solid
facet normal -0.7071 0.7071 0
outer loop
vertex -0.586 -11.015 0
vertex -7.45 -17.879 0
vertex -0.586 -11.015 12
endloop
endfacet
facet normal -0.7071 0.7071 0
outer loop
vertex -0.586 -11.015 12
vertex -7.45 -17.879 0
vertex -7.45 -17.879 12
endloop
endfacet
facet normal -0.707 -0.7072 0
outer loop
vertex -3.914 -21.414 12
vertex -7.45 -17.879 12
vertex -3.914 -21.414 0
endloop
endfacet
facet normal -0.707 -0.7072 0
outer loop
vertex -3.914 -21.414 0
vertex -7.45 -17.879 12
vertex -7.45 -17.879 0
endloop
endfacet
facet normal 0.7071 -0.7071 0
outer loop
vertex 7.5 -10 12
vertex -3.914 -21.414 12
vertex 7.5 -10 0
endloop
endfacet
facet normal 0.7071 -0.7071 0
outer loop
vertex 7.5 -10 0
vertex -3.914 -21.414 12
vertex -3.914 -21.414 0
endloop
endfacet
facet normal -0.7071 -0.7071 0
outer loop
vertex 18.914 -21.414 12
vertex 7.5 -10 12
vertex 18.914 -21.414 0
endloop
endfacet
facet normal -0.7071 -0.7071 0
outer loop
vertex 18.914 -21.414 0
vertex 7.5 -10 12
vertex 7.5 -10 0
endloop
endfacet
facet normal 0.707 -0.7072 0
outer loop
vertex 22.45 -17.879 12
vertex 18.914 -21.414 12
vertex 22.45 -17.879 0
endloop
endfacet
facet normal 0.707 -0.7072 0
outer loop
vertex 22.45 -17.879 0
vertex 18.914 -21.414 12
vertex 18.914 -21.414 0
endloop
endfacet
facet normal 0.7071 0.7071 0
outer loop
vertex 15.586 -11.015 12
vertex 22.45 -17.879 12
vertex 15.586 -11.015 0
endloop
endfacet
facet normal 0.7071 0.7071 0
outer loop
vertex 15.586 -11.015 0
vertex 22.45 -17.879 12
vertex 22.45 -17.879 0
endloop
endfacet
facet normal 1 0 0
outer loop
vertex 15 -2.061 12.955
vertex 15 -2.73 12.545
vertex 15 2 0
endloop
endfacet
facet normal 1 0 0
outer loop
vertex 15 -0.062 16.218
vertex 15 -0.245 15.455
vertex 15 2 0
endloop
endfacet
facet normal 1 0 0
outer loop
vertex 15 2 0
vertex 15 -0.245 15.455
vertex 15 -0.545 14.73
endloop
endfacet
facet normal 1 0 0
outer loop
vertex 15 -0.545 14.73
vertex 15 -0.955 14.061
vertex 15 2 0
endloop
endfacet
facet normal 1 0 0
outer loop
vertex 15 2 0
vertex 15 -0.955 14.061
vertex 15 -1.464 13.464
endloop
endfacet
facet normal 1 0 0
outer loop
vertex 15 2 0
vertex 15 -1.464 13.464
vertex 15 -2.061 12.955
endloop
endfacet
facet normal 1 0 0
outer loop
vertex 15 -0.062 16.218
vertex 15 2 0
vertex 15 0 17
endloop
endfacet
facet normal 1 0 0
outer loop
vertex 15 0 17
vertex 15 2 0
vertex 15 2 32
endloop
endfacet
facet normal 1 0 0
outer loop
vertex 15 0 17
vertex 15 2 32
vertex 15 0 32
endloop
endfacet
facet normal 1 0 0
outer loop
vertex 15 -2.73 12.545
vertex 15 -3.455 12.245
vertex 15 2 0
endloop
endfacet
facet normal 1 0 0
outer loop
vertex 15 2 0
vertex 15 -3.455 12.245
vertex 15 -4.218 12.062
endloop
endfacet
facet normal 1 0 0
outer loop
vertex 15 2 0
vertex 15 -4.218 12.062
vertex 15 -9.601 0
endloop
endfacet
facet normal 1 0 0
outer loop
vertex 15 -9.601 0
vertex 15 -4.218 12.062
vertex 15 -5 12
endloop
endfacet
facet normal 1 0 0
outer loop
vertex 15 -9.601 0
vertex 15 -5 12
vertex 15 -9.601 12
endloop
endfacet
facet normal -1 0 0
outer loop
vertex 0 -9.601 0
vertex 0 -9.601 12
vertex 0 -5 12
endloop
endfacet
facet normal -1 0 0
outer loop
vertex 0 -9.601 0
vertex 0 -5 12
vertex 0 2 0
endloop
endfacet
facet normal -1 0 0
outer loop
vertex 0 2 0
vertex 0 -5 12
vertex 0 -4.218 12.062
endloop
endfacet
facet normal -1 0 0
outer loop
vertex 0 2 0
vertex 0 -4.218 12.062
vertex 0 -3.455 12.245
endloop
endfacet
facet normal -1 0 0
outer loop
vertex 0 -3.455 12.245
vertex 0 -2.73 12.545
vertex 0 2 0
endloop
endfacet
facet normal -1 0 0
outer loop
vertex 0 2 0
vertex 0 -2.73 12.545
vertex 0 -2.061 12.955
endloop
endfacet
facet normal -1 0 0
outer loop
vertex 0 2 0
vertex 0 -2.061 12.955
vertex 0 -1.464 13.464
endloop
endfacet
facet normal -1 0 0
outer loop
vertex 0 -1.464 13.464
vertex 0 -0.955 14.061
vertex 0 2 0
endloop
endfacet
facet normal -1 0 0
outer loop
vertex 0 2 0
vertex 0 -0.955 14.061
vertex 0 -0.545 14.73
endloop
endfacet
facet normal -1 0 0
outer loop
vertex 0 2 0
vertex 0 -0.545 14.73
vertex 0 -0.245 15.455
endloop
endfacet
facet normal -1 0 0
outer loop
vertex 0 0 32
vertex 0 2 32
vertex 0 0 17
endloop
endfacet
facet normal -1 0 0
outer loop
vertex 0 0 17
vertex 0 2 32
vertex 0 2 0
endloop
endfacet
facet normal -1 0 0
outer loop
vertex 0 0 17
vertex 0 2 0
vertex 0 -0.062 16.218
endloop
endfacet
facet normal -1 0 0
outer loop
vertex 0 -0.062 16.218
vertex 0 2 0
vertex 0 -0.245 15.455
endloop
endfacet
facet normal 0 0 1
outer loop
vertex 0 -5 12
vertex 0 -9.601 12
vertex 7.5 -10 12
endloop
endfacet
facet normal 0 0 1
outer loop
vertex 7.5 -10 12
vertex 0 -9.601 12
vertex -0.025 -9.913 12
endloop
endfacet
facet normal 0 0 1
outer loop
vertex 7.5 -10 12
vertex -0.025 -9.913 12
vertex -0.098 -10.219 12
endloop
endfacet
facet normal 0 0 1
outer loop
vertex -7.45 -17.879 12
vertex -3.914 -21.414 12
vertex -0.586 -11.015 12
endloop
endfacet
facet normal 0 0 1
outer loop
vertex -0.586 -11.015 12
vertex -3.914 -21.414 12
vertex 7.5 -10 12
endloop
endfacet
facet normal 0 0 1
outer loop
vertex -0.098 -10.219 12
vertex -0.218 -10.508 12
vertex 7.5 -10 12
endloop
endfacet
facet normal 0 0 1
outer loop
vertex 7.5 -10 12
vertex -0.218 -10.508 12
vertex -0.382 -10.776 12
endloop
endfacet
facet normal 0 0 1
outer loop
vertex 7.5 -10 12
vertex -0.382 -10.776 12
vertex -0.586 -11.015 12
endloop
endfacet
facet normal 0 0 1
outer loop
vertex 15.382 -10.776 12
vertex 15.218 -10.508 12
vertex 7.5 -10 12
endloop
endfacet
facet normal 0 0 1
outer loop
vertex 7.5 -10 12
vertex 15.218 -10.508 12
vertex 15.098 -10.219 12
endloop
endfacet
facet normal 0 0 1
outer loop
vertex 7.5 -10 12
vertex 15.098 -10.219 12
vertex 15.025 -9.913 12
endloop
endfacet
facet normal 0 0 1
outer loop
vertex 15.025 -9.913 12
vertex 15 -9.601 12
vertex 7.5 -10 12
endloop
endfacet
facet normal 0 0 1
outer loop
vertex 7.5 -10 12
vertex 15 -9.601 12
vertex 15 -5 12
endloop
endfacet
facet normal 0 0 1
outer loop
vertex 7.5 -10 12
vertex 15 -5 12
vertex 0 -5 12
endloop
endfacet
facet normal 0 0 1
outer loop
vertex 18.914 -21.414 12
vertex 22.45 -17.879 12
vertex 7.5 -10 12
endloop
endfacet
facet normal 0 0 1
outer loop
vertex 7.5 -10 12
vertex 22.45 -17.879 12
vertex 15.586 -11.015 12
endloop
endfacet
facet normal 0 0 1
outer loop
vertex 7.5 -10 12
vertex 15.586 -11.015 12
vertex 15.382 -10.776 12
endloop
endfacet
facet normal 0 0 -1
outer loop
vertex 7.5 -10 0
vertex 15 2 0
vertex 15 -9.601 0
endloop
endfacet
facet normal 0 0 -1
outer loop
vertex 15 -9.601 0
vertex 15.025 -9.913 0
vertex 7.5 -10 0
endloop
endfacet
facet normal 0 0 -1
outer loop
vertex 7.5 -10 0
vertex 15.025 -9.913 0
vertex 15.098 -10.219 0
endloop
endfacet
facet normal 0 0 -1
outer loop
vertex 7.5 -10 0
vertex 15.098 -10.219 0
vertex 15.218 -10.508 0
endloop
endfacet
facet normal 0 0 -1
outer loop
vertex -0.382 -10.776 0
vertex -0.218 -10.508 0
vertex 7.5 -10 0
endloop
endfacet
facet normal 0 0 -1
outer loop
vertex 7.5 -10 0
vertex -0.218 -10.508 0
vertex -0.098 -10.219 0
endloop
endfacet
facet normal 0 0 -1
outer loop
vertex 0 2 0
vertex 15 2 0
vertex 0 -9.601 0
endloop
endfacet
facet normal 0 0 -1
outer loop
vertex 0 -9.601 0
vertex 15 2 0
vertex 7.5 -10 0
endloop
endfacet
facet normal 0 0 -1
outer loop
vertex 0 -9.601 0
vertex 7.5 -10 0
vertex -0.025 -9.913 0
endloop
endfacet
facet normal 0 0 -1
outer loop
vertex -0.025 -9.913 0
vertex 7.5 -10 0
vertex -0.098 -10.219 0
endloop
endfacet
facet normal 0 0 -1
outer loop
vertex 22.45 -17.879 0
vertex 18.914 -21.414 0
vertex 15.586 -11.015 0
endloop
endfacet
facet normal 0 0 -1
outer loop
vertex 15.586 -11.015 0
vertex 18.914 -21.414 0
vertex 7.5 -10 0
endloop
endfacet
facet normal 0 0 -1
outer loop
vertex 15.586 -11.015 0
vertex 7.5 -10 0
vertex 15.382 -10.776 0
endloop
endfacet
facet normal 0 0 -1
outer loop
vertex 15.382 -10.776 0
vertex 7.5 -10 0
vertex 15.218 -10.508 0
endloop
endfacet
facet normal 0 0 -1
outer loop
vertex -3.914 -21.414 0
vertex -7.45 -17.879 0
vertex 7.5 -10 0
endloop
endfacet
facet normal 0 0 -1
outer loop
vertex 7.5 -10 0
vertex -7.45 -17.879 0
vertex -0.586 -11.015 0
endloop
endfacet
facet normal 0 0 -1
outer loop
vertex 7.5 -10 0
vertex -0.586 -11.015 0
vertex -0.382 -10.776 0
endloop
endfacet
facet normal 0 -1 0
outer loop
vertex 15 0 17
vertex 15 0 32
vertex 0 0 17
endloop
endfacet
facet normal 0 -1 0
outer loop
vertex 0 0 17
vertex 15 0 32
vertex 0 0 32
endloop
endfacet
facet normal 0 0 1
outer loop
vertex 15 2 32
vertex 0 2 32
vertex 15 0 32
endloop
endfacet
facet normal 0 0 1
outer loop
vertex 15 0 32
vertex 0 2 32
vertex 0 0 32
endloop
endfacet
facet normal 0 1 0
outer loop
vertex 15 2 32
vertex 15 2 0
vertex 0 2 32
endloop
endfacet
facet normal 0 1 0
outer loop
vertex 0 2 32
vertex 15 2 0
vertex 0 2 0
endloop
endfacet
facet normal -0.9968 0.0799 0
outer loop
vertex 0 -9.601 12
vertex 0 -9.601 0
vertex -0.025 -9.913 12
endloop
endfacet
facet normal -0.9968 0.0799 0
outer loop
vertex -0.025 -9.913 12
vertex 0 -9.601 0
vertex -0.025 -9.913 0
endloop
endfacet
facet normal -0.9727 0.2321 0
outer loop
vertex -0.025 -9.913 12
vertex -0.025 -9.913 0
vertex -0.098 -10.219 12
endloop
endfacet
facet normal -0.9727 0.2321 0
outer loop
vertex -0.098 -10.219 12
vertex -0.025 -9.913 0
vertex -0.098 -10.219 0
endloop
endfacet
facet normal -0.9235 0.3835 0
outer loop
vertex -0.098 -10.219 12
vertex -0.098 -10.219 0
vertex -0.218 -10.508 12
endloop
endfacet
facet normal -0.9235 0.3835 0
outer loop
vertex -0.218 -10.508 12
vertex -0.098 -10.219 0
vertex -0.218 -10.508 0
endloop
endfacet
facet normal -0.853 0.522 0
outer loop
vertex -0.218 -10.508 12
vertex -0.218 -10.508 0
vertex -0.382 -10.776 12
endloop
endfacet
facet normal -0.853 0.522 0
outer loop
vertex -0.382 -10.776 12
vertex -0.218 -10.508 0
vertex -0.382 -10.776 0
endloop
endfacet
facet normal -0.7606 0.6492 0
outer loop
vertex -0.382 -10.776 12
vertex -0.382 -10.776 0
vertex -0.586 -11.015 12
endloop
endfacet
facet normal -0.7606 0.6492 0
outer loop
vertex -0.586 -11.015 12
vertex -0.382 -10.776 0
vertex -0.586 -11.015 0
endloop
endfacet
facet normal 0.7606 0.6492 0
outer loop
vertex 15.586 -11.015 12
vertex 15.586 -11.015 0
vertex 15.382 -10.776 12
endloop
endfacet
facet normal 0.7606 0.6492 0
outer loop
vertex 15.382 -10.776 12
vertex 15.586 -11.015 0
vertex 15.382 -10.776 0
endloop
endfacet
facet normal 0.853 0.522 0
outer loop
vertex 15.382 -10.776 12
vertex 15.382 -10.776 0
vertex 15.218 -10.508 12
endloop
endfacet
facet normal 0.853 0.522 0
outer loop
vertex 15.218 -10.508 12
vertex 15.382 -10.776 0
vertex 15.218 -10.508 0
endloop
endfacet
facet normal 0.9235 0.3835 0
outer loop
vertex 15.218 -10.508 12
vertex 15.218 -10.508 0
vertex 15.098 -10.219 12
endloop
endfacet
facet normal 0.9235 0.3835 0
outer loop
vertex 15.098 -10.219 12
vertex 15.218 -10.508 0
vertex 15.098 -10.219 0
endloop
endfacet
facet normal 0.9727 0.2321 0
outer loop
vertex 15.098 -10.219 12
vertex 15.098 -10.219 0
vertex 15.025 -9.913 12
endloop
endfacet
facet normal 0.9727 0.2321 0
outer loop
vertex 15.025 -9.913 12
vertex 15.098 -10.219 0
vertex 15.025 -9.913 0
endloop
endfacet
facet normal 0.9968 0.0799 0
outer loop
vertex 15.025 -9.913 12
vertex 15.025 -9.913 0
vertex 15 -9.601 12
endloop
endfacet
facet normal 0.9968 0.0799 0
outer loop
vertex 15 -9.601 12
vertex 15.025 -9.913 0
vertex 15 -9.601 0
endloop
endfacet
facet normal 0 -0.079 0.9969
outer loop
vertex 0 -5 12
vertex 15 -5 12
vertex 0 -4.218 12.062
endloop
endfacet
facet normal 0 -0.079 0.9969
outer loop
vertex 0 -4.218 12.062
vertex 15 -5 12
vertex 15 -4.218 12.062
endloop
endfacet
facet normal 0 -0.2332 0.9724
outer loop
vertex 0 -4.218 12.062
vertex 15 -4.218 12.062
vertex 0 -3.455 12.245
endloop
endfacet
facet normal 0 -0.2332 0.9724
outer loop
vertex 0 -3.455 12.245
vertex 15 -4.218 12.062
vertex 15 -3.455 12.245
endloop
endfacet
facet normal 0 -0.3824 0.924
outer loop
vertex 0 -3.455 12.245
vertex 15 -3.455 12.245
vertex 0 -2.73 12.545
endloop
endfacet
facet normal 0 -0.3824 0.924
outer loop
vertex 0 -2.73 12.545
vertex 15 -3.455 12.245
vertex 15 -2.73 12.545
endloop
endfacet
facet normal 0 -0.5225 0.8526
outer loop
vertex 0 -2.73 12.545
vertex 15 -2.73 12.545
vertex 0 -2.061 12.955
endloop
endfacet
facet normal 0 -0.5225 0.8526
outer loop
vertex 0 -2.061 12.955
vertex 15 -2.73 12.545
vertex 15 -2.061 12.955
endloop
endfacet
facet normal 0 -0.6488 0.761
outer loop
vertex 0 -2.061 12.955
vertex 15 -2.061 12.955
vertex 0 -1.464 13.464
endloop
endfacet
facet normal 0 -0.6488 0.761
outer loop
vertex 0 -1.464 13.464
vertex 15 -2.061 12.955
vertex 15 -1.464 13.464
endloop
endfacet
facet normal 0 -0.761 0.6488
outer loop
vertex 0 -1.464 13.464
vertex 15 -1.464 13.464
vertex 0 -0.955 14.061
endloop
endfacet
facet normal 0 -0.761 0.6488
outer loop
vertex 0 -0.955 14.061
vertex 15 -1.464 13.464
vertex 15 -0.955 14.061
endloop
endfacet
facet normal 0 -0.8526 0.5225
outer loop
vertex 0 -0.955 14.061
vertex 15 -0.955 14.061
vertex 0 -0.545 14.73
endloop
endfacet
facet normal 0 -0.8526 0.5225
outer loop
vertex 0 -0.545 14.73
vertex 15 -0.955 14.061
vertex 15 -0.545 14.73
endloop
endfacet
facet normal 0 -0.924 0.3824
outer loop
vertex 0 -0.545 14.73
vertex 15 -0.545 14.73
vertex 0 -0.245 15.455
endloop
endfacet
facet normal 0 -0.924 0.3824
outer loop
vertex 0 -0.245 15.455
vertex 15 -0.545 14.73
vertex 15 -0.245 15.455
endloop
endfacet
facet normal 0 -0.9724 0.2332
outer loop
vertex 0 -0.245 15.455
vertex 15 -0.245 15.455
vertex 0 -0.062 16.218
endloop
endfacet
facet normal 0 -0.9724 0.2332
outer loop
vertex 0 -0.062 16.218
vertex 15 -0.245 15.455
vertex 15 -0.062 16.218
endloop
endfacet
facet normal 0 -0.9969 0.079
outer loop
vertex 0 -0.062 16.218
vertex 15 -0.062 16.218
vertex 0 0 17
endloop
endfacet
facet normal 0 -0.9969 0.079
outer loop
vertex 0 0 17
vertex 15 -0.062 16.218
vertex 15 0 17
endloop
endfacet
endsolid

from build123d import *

# Parameters (mm, degrees)
BOSS_EXTRU_1_DEPTH = 12
ESQUISSE3_W        = 15
ESQUISSE3_H        = 32
BOSS_EXTRU_2_DEPTH = 2
CONG_2_R           = 2
CONG_3_R           = 5


with BuildPart() as part:
    # Esquisse2 → Boss.-Extru.1 (new body)
    with BuildSketch(Plane.XY):
        Polygon((-2.5, -20), (0, -17.5), (0, -10.428932188), (-6.035533906, -16.464466094), align=None)
        Polygon((7.5, -10), (7.5, 0), (0, 0), (0, -10.428932188), (0, -17.5), align=None)
        Polygon((15, 0), (7.5, 0), (7.5, -10), (15, -17.5), (15, -10.428932188), align=None)
        Polygon((15, -10.428932188), (15, -17.5), (17.5, -20), (21.035533906, -16.464466094), align=None)
        Polygon((-3.914213562, -21.414213562), (-7.449747468, -17.878679656), (-6.035533906, -16.464466094), (-2.5, -20), align=None)
        Polygon((17.5, -20), (18.914213562, -21.414213562), (22.449747468, -17.878679656), (21.035533906, -16.464466094), align=None)
    extrude(amount=BOSS_EXTRU_1_DEPTH)

    # Esquisse3 → Boss.-Extru.2 (add)
    with BuildSketch(Plane(origin=(0, 0, 0), x_dir=(1, 0, 0), z_dir=(0, 1, 0))):
        with Locations((7.5, -16)):
            Rectangle(ESQUISSE3_W, ESQUISSE3_H)
    extrude(amount=BOSS_EXTRU_2_DEPTH)

    # Congé2
    cong_2_edges = [part.edges().sort_by_distance(p)[0] for p in [
        (0, -10.428932188, 6),
        (15, -10.428932188, 6),
    ]]
    fillet(cong_2_edges, radius=CONG_2_R)

    # Congé3
    cong_3_edges = [part.edges().sort_by_distance(p)[0] for p in [
        (7.5, 0, 12),
    ]]
    fillet(cong_3_edges, radius=CONG_3_R)


solid = part.part
